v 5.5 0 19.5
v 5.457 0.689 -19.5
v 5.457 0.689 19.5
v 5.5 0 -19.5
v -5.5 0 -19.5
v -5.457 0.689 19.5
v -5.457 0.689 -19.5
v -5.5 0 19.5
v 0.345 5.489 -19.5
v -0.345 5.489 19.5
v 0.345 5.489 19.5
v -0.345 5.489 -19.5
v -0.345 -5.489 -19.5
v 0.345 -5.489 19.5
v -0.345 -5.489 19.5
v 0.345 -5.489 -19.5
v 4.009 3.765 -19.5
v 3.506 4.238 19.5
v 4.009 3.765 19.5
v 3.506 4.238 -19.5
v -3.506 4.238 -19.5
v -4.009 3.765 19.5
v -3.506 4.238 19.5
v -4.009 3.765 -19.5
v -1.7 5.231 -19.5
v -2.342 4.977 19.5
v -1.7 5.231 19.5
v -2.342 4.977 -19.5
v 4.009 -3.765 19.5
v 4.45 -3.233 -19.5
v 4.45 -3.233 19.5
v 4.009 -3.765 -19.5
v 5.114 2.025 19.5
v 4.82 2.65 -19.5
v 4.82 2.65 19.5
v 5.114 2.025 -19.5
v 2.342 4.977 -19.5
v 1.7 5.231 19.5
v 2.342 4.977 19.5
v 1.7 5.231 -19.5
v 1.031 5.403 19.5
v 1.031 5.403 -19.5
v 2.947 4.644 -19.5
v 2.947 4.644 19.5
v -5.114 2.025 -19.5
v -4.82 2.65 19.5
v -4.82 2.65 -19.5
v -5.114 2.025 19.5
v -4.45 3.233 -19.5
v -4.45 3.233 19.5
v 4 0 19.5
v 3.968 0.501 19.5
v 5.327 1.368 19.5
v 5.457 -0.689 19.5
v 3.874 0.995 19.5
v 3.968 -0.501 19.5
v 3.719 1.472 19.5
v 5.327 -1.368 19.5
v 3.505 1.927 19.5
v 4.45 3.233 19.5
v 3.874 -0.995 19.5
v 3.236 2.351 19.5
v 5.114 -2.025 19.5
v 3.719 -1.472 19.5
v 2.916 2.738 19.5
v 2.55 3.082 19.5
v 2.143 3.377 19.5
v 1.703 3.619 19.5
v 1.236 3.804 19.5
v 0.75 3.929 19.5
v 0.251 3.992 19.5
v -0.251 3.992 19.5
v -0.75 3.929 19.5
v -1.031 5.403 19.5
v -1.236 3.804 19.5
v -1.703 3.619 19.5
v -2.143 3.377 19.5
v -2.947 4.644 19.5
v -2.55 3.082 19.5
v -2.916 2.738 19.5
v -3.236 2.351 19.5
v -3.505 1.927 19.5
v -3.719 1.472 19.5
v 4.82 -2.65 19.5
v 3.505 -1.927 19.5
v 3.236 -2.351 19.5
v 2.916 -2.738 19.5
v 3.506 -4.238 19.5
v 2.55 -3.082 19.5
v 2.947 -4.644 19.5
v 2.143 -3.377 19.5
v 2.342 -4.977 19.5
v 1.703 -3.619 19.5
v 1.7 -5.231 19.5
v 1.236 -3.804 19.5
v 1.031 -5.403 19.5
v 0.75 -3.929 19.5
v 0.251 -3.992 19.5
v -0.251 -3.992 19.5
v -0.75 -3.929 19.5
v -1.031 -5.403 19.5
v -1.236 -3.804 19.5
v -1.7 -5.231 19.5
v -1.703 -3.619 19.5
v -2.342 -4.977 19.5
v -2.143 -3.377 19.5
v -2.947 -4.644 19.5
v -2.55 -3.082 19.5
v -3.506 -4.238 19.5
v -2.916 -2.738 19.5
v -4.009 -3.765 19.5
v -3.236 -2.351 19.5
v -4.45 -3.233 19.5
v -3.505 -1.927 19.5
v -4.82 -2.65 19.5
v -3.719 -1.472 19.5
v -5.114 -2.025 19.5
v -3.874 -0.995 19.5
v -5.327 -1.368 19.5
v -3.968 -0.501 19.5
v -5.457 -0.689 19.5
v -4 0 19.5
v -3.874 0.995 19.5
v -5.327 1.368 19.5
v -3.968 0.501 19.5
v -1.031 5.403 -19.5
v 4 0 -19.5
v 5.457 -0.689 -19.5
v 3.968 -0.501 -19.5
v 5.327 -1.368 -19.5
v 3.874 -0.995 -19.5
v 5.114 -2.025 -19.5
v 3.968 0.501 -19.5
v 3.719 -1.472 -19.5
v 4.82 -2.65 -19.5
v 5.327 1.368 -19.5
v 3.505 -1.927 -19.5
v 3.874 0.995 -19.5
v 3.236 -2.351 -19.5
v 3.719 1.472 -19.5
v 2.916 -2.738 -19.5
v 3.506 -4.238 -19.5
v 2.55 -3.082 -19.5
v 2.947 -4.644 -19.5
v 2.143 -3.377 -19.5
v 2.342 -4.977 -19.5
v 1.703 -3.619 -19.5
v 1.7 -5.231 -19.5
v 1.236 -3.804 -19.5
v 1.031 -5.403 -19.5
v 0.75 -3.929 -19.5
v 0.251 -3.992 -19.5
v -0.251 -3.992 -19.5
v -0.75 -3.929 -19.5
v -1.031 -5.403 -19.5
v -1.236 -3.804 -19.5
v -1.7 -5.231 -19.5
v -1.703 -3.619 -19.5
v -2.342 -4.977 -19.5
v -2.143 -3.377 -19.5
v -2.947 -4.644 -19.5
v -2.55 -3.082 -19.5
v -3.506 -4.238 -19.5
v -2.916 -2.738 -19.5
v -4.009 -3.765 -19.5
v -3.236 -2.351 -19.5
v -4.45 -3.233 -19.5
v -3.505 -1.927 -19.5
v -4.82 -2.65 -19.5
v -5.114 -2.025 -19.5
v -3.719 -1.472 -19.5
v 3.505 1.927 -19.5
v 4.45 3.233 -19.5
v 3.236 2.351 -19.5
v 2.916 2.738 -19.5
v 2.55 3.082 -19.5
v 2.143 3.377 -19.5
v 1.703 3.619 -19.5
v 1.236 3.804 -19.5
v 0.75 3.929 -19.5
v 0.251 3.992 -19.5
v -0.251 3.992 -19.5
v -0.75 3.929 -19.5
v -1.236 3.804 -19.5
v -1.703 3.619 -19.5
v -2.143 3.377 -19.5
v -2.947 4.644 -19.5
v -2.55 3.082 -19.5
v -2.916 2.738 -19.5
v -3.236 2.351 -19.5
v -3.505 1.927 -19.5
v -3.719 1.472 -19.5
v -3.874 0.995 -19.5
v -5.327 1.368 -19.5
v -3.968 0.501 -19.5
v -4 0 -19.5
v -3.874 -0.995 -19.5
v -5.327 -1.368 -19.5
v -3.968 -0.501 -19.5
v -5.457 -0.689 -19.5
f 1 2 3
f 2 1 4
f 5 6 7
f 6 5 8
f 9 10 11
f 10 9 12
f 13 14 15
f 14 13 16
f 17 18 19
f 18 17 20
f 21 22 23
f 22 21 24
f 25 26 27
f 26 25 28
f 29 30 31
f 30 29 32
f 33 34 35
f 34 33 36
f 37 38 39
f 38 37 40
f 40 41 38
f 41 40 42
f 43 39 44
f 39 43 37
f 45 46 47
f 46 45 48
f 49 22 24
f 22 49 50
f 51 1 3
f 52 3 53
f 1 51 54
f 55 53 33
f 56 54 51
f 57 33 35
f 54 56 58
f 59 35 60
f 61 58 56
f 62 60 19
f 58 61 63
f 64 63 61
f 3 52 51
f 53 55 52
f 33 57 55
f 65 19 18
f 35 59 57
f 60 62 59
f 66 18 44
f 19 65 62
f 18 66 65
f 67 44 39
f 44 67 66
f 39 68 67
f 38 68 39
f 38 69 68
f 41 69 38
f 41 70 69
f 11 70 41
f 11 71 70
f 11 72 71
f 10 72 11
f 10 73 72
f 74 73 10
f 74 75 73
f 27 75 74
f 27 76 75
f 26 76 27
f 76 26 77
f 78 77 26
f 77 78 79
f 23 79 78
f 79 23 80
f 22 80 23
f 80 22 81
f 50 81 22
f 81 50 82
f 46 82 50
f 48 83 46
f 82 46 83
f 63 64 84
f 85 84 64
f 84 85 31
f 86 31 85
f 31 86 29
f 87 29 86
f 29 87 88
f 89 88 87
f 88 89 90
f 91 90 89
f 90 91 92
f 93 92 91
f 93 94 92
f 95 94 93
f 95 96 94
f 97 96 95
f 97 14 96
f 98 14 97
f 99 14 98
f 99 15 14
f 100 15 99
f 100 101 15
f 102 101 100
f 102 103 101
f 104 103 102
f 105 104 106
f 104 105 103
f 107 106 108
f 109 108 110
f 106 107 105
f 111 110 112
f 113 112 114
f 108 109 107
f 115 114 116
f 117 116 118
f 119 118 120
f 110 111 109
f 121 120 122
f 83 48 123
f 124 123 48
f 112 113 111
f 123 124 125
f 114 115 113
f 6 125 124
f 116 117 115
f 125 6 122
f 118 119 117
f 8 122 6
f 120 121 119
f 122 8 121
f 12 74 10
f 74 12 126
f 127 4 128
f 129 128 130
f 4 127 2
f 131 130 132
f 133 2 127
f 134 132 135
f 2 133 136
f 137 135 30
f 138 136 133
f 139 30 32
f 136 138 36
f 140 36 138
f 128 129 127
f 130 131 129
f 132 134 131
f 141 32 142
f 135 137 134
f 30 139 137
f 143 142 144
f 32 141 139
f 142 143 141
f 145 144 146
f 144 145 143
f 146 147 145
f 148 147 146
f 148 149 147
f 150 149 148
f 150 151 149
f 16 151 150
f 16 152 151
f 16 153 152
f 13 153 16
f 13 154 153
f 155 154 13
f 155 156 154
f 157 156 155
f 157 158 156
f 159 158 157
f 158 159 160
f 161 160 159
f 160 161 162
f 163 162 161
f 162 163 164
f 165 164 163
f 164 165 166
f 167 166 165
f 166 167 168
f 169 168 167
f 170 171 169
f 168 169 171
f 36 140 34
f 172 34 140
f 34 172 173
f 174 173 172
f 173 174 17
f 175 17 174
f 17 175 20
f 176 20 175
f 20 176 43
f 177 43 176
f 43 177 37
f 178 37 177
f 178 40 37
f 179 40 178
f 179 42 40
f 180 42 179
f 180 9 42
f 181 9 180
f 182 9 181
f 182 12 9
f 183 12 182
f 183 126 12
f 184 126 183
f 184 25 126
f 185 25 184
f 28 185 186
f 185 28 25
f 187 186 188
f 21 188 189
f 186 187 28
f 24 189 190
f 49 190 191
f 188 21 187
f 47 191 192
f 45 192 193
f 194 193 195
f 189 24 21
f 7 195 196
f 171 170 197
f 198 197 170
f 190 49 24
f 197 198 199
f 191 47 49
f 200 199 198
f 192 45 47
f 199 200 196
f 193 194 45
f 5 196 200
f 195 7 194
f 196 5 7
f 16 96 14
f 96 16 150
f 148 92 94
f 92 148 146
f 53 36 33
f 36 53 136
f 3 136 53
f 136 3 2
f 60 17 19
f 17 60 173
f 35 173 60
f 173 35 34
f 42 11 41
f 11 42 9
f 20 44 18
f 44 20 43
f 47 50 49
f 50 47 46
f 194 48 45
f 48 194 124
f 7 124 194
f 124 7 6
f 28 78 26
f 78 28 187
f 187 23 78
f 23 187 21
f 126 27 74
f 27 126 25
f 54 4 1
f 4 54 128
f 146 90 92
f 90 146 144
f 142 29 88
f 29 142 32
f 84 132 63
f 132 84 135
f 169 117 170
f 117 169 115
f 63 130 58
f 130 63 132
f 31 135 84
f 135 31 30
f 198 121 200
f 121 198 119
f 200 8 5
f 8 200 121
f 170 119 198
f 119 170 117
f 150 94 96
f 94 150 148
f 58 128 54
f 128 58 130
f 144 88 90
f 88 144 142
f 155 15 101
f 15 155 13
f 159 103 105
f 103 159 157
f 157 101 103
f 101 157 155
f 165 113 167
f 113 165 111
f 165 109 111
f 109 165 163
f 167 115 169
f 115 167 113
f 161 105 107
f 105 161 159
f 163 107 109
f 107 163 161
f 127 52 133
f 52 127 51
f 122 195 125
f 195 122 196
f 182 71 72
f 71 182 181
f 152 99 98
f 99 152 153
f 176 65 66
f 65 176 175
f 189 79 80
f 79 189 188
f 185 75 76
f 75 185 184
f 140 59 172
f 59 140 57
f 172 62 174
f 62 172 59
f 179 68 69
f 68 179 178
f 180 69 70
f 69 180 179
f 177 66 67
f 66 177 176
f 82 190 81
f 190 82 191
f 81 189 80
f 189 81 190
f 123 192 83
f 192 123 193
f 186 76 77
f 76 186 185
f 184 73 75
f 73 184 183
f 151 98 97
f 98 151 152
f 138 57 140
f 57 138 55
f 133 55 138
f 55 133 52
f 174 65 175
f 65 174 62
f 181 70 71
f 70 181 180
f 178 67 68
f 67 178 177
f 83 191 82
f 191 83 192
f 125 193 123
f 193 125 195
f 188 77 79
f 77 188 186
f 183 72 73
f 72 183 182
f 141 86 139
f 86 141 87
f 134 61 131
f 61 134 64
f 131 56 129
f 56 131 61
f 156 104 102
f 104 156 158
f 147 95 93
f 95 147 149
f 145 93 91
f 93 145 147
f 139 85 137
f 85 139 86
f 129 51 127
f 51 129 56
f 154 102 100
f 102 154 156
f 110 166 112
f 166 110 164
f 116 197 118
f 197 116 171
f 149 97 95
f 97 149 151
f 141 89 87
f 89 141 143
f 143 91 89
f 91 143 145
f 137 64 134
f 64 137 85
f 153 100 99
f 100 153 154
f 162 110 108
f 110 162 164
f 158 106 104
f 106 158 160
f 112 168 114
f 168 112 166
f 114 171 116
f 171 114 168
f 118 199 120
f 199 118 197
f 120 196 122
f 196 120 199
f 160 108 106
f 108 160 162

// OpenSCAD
$fn = 50;


difference() {
	union() {
		translate(v = [0, 0, -19.5000000000]) {
			cylinder(h = 39, r = 5.5000000000);
		}
	}
	union() {
		translate(v = [0, 0, -100.0000000000]) {
			cylinder(h = 200, r = 4);
		}
	}
}
